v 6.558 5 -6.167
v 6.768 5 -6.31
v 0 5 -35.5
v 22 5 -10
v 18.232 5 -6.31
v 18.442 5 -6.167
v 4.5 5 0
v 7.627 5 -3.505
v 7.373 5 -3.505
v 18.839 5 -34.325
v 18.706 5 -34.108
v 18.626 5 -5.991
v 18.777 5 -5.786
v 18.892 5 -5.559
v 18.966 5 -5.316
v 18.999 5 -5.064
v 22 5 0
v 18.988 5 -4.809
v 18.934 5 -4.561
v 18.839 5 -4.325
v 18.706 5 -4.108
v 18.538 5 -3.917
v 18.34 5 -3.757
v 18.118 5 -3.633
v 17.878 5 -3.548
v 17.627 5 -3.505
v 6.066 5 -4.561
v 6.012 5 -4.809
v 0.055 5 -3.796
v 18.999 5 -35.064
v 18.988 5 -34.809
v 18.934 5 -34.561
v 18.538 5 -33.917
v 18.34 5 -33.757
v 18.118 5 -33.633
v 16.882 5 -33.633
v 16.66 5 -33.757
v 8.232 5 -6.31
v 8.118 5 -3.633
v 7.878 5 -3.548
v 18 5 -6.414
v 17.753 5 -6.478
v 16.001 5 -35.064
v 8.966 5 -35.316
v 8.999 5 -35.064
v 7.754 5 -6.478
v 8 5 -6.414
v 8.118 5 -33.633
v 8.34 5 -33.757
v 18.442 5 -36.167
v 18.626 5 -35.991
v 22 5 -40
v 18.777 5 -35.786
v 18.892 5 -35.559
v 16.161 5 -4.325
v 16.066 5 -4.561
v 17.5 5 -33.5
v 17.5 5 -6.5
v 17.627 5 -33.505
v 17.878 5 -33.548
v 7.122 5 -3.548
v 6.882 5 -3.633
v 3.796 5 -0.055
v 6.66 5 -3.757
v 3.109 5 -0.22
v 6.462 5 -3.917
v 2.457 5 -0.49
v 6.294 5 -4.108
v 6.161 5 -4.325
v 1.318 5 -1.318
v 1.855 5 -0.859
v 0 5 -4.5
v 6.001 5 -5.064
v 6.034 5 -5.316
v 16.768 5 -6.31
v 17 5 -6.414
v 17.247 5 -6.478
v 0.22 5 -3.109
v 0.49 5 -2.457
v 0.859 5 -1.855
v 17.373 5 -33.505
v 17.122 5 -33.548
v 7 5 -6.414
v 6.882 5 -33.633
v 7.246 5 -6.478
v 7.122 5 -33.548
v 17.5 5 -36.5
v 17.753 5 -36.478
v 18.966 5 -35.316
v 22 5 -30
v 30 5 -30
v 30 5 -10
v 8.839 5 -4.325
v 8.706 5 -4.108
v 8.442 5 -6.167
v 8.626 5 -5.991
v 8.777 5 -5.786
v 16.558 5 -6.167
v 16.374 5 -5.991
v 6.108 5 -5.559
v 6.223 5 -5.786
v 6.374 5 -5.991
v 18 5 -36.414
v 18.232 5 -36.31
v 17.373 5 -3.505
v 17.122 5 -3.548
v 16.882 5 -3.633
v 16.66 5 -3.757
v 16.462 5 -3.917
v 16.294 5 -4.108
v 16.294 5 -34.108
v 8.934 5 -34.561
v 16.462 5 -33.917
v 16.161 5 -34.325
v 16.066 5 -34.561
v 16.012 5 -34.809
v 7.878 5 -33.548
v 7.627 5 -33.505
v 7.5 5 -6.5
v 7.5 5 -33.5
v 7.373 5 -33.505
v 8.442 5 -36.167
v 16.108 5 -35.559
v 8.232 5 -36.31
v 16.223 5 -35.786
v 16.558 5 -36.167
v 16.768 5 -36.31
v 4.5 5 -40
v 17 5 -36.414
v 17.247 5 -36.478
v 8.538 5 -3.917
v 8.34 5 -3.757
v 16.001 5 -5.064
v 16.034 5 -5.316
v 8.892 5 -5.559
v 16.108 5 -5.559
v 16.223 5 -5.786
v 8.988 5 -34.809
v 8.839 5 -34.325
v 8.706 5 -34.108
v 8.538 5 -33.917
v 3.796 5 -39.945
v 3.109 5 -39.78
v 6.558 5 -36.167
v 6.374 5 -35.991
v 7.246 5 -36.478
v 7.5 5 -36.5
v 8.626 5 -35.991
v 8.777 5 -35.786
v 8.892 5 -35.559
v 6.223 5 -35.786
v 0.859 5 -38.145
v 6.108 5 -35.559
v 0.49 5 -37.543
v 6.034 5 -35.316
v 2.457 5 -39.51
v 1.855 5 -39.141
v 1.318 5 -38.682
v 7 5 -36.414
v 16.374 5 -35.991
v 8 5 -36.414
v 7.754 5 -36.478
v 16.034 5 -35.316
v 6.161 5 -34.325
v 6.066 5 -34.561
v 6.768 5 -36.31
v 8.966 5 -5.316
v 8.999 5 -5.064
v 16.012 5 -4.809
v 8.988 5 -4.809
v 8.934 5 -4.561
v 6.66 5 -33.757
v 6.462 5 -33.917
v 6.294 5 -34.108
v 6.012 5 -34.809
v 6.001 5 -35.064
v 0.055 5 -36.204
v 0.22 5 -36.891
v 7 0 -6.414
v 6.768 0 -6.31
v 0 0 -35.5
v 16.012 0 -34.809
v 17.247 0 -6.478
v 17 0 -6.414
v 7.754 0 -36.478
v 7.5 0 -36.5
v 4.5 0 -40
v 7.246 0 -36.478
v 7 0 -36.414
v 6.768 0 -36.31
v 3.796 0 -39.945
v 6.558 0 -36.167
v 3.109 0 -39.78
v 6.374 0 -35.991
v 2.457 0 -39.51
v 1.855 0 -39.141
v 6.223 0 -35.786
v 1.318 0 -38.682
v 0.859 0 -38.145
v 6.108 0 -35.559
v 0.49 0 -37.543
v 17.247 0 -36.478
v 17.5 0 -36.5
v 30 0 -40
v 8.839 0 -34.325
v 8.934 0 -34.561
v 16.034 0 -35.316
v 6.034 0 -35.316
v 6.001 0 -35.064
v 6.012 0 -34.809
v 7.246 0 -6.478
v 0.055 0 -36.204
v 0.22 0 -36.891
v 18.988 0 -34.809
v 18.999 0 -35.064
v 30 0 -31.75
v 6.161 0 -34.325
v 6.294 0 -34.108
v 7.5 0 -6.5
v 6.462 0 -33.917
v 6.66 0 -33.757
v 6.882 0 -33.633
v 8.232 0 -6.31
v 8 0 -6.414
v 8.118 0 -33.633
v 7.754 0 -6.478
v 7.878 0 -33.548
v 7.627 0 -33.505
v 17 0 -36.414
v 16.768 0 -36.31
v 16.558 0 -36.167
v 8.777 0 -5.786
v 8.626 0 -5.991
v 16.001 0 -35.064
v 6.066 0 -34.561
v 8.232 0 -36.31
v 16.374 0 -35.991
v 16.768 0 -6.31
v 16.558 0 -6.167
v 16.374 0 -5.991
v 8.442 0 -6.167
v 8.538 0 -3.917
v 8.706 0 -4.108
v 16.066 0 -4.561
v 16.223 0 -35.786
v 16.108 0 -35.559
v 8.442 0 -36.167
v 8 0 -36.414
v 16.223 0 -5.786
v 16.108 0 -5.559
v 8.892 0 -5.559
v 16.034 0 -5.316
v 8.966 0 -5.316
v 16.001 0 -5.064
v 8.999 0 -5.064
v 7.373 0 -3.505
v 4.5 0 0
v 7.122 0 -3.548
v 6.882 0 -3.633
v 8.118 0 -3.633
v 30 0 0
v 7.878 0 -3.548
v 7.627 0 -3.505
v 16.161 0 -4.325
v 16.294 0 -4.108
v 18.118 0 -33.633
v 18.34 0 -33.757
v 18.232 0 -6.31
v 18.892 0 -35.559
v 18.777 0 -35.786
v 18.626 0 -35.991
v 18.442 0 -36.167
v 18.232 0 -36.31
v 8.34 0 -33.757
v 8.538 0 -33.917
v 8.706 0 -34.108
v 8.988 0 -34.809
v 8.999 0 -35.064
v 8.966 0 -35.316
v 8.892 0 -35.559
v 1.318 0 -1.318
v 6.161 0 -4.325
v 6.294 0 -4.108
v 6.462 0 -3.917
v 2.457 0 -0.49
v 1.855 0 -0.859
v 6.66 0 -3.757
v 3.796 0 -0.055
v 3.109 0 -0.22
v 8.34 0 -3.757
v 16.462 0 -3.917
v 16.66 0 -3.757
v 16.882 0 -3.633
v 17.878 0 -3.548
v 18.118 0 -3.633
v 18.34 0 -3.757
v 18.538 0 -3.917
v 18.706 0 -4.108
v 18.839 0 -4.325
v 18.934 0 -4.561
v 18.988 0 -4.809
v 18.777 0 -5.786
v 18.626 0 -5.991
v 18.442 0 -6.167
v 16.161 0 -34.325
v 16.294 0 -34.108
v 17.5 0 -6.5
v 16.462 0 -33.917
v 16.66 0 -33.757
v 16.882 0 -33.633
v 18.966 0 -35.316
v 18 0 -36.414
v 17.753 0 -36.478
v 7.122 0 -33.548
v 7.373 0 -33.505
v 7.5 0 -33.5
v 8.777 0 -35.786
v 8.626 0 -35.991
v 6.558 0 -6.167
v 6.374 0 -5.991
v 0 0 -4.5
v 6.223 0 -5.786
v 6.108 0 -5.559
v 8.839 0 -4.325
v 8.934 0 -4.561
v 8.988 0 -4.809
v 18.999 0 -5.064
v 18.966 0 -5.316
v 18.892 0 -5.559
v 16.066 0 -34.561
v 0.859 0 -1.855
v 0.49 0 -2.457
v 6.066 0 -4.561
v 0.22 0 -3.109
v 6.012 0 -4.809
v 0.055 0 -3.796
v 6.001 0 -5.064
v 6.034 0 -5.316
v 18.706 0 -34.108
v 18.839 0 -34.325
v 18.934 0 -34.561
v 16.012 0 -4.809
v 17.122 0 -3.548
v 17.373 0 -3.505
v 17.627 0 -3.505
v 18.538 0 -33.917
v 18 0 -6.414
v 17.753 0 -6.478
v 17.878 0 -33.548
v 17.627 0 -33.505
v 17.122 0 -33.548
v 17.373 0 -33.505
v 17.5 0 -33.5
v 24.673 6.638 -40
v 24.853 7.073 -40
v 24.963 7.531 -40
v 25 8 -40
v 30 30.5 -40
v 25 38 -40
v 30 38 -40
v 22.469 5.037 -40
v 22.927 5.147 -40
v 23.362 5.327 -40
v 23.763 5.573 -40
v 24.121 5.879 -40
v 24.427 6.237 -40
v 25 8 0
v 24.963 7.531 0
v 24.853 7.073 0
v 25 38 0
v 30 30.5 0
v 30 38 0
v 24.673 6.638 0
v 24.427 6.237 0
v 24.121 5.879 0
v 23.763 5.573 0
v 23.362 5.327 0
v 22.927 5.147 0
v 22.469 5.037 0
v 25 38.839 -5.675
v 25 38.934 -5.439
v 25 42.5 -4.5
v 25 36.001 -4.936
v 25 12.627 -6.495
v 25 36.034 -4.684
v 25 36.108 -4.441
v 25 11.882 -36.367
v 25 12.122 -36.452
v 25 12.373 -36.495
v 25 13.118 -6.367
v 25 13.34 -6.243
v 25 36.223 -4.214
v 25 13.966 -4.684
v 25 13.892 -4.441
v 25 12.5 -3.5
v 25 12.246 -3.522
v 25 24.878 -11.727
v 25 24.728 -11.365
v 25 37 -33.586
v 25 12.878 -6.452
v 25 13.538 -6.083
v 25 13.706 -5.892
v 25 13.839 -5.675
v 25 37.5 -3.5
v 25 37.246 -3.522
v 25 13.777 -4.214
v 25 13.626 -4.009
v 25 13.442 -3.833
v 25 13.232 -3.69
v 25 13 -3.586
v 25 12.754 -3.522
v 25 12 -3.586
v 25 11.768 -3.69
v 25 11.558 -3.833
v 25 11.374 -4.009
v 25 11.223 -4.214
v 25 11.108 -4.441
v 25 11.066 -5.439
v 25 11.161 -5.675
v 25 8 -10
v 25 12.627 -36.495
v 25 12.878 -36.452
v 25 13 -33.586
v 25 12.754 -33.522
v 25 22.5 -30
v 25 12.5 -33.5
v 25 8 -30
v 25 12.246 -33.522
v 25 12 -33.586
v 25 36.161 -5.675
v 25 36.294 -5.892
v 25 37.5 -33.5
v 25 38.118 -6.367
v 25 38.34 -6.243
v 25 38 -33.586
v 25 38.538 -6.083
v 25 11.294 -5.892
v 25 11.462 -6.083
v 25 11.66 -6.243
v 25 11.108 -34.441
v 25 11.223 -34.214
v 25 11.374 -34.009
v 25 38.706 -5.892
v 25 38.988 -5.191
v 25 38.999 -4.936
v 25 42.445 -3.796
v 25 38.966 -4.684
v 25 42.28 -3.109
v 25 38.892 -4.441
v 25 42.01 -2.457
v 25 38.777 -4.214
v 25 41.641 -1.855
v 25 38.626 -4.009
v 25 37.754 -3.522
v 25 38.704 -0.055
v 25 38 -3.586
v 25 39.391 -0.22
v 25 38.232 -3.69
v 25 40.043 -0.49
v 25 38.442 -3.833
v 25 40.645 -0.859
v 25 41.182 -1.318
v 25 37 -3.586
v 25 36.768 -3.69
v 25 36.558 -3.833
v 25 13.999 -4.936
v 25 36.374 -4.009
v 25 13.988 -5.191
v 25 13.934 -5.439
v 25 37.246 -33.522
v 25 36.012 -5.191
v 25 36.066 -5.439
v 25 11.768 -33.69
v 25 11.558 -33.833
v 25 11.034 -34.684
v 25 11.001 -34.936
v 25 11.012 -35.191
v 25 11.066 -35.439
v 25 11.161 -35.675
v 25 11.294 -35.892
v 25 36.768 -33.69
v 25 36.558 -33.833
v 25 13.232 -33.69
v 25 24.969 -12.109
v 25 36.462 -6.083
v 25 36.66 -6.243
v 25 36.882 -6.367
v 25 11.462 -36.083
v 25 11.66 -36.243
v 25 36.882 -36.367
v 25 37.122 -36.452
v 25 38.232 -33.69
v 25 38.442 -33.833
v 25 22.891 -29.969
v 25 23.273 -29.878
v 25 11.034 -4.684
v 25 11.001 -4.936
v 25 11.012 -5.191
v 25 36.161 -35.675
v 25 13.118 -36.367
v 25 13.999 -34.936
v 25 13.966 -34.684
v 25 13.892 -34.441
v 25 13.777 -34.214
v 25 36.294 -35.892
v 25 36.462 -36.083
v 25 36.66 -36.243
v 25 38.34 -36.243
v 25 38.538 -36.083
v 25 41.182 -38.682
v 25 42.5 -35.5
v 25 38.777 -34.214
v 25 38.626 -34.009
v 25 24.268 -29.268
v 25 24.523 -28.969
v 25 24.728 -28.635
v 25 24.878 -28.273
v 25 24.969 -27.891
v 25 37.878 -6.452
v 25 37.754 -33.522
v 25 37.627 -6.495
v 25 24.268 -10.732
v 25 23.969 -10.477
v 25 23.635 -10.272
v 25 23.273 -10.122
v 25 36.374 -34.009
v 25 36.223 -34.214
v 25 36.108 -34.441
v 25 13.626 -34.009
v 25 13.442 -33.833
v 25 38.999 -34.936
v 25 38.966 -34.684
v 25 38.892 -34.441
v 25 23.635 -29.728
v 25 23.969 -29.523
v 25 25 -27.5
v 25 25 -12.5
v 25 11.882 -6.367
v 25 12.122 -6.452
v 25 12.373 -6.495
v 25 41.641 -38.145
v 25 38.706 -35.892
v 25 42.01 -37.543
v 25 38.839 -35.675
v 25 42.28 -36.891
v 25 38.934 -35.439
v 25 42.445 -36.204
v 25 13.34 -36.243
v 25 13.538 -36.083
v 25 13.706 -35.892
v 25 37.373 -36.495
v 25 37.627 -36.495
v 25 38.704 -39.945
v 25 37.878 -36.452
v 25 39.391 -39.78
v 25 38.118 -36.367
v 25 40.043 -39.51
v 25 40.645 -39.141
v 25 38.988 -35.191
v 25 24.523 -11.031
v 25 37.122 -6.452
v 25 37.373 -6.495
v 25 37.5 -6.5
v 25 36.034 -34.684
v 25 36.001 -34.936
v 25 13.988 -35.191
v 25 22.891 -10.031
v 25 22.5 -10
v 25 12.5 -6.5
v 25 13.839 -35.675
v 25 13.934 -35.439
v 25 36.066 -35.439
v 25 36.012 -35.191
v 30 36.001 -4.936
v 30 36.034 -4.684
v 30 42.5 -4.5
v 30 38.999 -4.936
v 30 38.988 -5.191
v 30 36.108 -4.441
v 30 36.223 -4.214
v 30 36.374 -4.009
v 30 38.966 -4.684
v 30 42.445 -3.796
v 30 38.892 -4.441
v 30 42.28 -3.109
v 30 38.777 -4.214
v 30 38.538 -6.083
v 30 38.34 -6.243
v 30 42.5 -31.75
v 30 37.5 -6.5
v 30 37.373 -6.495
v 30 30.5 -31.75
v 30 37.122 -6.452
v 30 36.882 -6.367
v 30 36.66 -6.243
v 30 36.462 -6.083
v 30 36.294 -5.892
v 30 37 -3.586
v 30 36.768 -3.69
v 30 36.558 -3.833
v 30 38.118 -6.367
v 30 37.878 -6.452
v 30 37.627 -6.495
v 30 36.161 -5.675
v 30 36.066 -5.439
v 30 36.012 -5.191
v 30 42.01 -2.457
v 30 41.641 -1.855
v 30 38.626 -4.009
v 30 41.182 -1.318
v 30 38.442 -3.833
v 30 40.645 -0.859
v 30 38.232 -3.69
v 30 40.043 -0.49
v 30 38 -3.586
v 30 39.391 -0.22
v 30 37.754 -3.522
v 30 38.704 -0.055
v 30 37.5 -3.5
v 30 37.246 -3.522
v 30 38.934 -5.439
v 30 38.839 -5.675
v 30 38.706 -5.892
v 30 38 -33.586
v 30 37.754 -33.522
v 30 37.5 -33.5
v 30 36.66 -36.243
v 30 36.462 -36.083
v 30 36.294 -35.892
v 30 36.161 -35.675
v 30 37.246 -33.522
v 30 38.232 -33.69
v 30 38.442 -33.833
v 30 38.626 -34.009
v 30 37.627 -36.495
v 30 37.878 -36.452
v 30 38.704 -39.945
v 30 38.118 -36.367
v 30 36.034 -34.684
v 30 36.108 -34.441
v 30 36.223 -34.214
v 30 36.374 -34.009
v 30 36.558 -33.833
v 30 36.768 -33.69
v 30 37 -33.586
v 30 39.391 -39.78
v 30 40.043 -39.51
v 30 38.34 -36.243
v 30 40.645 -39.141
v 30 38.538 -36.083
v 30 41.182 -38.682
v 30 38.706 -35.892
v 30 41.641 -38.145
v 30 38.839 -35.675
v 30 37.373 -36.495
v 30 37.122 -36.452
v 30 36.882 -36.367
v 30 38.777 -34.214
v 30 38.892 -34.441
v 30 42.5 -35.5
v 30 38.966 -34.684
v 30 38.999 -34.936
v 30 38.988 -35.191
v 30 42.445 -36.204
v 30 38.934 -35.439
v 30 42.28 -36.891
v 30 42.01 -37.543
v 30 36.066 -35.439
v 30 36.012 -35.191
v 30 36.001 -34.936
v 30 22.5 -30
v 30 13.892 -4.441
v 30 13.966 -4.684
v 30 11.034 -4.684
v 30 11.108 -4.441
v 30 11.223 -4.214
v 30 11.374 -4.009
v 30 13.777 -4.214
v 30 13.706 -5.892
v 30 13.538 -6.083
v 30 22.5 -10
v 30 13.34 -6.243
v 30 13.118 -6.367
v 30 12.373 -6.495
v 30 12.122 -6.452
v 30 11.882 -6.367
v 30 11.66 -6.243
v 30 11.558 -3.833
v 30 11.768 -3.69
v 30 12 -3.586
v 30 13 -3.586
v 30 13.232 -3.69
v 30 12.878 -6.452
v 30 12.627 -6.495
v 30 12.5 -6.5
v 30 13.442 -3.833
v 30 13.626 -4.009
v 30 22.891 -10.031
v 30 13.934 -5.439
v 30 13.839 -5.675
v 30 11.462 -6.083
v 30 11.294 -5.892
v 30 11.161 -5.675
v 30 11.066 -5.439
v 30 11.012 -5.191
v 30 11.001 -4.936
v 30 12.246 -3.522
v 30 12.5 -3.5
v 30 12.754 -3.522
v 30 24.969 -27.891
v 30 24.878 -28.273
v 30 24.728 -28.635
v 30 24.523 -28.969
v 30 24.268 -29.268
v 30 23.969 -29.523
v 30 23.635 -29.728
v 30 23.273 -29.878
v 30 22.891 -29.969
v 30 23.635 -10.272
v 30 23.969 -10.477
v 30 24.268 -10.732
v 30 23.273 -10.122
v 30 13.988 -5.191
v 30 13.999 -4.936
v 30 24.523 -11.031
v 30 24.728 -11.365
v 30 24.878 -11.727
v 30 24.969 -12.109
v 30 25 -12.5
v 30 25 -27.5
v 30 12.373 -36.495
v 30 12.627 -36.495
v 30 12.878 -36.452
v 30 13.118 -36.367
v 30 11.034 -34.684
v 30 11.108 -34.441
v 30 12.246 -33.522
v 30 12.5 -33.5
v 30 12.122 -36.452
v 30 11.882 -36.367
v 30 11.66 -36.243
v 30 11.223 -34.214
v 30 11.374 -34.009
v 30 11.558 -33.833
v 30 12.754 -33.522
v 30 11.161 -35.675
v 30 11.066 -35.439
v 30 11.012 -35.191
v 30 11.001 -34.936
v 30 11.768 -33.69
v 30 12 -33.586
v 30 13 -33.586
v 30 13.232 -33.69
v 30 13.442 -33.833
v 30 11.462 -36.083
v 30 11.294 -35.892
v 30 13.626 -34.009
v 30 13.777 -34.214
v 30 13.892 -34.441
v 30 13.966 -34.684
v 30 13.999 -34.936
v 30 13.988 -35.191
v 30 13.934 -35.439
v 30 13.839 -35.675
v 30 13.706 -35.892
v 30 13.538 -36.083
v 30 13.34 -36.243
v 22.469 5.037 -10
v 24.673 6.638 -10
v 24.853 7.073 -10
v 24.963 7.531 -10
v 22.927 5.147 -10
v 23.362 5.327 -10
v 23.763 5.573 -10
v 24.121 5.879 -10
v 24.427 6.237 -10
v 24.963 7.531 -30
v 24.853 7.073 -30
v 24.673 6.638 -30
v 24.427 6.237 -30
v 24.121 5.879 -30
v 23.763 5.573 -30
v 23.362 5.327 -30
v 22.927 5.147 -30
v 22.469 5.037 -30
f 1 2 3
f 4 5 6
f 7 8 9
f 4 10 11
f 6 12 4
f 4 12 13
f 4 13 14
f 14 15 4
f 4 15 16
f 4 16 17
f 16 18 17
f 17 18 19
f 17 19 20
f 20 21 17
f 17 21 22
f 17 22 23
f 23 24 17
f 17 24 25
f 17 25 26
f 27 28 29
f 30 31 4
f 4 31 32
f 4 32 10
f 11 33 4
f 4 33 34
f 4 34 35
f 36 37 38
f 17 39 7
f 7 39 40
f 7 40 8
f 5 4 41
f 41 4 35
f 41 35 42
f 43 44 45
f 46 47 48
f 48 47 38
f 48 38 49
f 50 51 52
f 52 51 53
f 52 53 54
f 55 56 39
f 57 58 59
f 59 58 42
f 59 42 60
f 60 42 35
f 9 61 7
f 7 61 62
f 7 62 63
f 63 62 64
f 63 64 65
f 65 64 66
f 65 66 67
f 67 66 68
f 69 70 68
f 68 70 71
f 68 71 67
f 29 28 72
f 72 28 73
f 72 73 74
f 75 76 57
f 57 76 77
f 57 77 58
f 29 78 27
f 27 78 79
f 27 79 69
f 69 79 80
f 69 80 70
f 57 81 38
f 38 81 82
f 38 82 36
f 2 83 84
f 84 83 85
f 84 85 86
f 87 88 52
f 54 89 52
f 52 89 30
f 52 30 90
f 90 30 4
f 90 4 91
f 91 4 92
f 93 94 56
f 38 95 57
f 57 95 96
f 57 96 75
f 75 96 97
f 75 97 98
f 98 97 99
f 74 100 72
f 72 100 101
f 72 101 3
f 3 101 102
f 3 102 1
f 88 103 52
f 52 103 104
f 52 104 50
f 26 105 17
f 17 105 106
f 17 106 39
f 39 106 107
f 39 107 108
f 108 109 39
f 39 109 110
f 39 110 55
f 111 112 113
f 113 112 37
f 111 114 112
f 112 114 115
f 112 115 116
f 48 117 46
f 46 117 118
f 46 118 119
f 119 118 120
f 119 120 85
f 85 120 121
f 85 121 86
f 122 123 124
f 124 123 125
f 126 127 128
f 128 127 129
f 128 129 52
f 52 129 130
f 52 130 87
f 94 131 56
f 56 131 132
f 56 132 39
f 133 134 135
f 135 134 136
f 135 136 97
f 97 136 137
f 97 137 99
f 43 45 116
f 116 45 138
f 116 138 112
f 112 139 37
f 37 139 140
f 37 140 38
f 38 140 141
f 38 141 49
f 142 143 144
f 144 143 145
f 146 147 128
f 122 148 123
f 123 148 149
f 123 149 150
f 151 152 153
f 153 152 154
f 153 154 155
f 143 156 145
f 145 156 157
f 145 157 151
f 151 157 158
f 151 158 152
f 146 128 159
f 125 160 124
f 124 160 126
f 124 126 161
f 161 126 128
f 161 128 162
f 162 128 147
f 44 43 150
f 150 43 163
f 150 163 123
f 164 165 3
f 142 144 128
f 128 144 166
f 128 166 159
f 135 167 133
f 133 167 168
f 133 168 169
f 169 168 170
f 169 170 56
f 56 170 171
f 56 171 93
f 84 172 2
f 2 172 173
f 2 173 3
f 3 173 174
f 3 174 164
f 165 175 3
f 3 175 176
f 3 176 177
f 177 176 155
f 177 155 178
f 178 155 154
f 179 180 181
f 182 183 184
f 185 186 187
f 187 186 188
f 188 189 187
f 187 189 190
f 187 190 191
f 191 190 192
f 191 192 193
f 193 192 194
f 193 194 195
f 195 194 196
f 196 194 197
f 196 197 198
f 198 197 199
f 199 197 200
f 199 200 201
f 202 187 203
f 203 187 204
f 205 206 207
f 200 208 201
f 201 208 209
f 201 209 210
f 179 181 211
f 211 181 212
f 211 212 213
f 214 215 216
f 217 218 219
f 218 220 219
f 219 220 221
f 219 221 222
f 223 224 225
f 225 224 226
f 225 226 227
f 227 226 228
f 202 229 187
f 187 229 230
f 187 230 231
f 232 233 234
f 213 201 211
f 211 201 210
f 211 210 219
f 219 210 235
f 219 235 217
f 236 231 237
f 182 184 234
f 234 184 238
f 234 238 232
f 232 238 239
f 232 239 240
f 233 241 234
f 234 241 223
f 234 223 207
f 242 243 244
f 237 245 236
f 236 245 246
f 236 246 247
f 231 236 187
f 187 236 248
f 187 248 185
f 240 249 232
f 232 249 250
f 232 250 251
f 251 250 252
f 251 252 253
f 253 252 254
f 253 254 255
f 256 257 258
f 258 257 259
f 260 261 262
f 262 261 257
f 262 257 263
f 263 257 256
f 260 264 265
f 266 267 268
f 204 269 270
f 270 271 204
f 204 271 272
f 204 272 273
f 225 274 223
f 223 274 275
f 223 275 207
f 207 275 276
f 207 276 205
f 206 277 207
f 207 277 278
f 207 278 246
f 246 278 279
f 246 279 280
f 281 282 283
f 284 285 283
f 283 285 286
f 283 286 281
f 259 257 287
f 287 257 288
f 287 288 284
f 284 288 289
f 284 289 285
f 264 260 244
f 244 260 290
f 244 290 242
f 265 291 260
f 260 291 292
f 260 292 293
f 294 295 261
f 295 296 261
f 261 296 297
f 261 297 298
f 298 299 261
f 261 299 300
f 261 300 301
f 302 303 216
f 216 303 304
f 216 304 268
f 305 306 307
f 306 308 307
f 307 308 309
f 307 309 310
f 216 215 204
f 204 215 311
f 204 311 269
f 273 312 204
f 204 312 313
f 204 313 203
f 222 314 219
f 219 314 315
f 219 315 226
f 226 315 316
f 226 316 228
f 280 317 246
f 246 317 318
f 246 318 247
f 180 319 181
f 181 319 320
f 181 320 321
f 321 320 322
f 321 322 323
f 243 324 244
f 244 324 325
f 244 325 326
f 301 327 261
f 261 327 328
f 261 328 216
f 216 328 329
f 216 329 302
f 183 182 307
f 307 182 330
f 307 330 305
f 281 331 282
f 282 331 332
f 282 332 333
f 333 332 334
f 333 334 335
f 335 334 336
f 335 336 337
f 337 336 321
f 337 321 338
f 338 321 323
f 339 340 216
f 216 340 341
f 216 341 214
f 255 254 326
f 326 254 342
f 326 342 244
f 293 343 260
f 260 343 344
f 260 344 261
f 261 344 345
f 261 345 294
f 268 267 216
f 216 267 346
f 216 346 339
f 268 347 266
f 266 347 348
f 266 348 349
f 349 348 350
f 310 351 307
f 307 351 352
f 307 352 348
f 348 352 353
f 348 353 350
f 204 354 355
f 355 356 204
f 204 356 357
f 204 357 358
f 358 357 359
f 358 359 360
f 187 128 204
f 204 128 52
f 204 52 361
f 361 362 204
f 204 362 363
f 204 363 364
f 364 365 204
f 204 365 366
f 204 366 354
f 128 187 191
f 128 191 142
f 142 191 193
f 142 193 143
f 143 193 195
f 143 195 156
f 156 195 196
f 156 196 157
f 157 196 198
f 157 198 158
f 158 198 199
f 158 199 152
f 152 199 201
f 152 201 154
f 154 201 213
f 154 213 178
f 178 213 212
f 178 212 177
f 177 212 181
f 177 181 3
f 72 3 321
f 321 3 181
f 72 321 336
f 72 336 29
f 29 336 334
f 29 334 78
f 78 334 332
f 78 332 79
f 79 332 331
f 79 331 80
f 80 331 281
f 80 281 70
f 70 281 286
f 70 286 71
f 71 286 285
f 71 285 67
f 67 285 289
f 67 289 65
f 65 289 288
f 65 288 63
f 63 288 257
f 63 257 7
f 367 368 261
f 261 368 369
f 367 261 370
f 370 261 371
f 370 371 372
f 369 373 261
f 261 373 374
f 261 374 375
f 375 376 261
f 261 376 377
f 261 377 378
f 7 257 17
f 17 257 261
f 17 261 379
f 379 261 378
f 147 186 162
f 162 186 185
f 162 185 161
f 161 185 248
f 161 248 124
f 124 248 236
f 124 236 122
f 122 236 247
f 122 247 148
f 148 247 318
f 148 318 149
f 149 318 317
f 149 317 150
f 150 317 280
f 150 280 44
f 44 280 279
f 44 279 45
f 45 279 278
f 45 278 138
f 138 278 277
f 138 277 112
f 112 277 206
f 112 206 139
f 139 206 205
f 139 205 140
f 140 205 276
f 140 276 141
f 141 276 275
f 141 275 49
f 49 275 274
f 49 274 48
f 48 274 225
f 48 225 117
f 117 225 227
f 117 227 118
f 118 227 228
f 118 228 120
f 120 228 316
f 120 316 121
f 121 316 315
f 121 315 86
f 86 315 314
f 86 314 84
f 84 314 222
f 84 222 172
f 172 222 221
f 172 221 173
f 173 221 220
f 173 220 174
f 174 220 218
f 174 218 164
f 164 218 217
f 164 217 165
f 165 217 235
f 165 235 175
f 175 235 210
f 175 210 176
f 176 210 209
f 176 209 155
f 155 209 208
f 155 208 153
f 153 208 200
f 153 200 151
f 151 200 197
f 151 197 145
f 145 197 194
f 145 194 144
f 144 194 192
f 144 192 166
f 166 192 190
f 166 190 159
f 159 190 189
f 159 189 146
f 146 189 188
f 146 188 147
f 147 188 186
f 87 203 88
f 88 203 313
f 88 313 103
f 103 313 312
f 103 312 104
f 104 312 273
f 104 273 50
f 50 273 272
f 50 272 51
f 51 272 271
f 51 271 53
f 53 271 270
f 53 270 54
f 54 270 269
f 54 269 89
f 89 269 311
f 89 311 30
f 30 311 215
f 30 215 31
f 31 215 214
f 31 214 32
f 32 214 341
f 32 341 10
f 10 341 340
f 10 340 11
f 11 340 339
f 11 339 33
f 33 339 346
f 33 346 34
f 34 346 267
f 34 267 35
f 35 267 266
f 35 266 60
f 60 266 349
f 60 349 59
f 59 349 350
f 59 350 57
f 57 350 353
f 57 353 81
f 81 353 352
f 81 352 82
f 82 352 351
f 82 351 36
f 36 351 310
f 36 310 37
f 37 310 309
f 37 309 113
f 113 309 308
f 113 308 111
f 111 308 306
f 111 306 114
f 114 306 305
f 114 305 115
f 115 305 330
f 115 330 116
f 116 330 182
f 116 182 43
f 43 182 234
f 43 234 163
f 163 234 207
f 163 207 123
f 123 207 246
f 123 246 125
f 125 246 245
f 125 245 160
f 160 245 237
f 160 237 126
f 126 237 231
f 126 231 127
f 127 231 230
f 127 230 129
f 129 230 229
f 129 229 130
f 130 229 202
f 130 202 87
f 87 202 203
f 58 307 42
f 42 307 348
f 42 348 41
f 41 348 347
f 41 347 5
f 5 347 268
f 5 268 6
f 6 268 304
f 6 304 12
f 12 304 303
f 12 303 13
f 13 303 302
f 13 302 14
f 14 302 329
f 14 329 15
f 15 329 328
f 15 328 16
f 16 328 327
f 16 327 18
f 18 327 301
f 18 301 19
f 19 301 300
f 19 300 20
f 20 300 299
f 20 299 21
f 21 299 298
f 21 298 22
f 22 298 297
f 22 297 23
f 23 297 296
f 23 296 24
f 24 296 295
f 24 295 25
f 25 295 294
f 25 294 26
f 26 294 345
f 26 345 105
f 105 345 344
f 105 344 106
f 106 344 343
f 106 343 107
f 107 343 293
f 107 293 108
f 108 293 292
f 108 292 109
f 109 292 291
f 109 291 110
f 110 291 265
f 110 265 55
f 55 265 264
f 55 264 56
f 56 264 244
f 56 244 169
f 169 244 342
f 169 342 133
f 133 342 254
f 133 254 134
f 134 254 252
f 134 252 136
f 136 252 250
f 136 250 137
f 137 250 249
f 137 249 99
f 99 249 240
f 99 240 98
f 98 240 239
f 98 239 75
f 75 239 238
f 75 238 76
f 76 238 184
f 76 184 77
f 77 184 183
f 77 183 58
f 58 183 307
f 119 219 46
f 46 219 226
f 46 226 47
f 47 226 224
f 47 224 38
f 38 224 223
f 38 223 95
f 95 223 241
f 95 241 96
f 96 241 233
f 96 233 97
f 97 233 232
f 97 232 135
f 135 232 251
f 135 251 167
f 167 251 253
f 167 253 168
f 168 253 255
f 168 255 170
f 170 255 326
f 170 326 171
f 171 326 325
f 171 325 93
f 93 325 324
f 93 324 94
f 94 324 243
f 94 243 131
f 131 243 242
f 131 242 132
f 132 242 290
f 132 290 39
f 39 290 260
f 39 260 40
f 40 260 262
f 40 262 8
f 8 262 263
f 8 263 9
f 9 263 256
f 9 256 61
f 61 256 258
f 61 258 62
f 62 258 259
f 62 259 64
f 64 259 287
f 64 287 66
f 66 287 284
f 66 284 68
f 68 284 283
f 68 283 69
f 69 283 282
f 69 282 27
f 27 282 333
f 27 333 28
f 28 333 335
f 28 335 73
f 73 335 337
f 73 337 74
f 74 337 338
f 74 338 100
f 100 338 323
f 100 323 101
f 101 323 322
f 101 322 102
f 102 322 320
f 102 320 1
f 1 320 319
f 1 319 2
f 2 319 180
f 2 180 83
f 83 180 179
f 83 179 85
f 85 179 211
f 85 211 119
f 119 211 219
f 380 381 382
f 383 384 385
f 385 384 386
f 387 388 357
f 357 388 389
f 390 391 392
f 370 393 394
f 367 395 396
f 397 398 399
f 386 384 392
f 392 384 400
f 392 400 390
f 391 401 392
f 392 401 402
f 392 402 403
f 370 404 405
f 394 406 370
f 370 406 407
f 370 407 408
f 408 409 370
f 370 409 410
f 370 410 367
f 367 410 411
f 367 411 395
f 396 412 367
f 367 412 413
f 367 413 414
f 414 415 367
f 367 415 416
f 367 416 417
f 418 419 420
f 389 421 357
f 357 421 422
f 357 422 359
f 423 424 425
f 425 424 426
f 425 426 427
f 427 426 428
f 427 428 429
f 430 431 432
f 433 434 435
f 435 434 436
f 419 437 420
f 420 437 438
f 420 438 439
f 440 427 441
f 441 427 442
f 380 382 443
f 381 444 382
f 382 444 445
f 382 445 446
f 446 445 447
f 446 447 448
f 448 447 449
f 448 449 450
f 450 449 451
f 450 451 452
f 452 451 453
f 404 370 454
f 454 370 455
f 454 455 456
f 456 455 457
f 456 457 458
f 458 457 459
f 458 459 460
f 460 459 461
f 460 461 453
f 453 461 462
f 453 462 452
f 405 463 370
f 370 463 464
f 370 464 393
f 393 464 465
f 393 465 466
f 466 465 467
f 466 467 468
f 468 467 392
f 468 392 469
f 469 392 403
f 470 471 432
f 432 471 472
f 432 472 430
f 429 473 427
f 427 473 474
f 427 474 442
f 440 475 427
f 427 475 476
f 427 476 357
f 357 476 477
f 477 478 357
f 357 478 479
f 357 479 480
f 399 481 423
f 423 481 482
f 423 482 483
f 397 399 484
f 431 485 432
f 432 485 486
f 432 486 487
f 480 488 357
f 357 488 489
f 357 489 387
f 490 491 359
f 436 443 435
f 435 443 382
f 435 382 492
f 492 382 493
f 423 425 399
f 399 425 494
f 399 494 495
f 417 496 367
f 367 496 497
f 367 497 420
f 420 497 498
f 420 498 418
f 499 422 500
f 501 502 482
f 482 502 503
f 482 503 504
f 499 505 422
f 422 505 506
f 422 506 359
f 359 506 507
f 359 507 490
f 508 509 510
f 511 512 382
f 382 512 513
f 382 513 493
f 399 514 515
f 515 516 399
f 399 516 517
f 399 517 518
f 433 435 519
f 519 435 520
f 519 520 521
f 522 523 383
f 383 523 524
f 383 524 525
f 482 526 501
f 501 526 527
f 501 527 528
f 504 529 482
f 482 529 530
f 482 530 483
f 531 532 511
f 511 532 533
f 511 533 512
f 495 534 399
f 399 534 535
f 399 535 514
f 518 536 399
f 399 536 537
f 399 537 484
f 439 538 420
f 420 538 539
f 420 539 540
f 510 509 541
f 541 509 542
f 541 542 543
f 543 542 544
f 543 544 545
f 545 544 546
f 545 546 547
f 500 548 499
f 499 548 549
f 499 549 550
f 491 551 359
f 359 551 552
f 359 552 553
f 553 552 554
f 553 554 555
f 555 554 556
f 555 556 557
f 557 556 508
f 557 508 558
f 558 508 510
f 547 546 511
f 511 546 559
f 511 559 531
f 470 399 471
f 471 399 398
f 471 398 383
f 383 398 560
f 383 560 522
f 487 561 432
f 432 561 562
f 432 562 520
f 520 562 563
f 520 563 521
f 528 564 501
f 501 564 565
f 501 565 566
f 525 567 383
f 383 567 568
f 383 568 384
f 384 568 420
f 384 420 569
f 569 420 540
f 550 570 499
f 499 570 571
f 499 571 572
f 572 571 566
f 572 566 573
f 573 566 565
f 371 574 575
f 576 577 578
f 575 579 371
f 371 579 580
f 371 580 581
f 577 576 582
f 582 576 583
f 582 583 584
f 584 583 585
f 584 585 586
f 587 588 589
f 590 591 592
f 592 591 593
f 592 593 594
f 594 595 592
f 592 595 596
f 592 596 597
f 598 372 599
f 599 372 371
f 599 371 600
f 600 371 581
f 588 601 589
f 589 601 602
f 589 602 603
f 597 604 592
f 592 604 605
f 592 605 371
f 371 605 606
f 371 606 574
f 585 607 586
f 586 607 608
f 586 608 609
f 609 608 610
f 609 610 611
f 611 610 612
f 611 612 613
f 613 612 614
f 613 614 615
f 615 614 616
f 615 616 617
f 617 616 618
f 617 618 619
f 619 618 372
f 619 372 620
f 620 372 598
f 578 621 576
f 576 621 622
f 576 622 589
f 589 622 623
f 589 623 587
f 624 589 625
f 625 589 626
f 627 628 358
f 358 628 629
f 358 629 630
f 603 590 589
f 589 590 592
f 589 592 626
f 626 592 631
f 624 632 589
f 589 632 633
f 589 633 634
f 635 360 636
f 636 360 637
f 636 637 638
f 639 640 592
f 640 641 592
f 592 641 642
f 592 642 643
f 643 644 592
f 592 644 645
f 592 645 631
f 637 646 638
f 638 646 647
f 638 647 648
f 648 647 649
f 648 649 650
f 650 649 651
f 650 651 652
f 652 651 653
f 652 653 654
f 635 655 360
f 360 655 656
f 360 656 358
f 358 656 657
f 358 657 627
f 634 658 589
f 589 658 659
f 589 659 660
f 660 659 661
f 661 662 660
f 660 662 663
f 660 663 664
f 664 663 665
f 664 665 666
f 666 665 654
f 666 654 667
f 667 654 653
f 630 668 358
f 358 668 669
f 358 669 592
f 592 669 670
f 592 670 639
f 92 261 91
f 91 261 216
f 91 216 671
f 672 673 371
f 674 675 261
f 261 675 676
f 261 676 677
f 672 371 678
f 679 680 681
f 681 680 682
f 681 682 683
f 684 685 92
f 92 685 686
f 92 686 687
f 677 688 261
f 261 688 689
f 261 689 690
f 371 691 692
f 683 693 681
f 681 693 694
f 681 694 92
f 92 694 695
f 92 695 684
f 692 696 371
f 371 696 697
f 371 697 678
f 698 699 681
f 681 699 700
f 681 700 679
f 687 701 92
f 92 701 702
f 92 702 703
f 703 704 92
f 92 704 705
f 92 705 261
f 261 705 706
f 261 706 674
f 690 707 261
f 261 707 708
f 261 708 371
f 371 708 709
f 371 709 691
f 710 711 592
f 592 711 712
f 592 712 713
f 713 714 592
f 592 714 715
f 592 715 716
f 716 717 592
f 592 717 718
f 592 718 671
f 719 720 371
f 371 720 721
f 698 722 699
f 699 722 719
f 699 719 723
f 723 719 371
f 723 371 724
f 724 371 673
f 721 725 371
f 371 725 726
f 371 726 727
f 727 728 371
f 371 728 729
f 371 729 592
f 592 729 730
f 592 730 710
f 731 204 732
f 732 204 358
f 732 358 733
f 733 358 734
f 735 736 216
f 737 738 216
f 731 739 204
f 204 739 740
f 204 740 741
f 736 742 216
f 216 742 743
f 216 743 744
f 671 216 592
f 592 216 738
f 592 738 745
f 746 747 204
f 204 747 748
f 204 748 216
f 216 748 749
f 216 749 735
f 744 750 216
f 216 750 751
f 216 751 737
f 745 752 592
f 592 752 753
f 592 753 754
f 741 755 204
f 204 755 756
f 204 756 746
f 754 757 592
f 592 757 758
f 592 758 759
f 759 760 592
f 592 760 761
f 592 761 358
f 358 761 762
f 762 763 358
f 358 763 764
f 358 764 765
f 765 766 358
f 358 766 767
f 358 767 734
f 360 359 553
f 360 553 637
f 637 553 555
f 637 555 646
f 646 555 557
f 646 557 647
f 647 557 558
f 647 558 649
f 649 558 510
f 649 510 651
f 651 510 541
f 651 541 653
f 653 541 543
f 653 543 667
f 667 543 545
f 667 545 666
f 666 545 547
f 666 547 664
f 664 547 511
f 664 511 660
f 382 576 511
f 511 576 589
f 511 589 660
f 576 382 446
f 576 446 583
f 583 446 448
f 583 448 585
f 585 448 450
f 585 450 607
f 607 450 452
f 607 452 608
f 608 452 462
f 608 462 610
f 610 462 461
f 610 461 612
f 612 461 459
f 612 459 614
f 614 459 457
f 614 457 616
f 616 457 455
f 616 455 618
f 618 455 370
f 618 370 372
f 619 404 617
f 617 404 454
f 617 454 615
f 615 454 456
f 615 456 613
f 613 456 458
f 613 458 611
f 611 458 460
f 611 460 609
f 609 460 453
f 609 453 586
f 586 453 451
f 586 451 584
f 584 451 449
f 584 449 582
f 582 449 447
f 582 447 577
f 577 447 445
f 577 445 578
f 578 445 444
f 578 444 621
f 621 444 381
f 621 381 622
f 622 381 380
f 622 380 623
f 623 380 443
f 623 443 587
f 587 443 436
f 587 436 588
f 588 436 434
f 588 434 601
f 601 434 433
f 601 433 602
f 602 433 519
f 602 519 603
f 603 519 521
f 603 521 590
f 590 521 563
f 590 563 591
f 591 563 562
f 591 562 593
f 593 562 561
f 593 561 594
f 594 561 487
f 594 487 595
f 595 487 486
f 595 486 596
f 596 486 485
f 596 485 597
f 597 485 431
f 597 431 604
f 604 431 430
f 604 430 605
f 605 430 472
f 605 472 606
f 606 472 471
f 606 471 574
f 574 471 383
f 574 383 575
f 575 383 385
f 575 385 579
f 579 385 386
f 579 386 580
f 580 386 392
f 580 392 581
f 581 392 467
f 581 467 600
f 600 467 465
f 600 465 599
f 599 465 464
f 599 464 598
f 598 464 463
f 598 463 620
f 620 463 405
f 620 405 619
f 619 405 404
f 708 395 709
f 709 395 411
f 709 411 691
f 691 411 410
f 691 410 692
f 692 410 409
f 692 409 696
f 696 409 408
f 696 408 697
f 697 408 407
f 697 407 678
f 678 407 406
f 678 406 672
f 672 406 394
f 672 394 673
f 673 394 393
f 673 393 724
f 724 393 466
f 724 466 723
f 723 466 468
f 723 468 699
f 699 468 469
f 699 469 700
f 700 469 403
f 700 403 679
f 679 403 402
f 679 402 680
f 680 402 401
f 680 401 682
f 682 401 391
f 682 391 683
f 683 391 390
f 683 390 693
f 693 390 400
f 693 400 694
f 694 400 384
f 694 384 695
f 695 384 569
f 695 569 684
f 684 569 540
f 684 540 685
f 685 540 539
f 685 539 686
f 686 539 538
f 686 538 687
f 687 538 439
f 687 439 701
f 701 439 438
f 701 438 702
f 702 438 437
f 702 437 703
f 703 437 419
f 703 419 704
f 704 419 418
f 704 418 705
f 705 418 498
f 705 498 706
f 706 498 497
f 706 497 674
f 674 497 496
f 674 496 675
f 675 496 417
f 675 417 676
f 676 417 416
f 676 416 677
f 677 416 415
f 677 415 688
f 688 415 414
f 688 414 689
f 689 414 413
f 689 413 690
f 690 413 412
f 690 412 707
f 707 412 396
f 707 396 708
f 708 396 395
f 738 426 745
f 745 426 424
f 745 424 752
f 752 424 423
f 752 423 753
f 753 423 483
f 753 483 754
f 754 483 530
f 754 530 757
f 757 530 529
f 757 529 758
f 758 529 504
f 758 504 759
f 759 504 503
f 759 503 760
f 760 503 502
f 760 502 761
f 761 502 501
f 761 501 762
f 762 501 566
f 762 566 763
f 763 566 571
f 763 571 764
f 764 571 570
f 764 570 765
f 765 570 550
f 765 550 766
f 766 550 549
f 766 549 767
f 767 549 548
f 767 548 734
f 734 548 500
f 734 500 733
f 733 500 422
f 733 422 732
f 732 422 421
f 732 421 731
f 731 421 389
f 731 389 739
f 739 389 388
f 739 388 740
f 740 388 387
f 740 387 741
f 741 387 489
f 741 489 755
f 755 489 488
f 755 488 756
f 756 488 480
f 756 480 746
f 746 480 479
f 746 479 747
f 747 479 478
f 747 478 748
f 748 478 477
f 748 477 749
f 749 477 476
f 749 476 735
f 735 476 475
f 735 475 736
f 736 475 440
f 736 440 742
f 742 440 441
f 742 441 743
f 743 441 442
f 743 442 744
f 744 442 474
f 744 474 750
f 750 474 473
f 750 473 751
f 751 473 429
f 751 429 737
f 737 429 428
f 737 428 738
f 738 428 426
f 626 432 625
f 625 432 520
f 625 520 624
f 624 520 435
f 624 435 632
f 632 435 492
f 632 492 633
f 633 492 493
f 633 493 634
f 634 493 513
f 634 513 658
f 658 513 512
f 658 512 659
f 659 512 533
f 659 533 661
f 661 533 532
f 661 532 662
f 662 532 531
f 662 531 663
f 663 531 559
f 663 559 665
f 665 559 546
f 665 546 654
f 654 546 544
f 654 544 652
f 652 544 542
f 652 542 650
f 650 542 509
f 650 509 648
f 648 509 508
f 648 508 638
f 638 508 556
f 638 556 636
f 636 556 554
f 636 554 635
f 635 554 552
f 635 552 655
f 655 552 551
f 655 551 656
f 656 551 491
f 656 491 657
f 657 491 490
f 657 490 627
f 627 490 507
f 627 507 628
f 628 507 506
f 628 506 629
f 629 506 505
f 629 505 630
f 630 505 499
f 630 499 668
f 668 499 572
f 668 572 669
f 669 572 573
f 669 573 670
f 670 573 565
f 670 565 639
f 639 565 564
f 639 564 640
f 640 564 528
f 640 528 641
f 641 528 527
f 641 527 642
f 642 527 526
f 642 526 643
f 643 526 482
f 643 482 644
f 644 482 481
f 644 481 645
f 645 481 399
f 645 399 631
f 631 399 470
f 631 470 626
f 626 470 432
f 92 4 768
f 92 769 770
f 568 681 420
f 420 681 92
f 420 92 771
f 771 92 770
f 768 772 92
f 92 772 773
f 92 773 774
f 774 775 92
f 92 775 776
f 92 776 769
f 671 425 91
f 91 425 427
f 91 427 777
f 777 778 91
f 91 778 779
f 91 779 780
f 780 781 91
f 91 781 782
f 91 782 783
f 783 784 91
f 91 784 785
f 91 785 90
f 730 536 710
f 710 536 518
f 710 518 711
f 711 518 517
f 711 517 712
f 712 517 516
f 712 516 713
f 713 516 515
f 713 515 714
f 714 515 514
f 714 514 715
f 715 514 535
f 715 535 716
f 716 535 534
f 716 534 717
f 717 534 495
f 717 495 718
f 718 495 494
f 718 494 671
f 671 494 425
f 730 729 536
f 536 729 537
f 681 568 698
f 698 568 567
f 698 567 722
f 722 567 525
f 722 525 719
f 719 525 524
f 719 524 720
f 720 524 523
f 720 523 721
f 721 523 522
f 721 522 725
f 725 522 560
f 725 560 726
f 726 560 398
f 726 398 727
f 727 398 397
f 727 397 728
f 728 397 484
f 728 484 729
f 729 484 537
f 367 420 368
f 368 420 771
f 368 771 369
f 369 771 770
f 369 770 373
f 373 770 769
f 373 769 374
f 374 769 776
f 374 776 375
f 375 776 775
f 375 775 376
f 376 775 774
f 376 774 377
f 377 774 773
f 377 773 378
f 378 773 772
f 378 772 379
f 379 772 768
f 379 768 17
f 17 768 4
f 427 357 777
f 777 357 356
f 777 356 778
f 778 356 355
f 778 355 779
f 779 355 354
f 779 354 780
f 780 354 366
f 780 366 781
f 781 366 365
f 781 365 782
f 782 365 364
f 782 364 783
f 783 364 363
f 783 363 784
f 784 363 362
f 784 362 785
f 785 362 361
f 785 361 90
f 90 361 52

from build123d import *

# Parameters (mm, degrees)
SKETCH1_R           = 1.5
BOSS_EXTRUDE1_DEPTH = 5
SKETCH2_R           = 1.5
BOSS_EXTRUDE3_DEPTH = 5
FILLET4_R           = 3


with BuildPart() as part:
    # Sketch1 → Boss-Extrude1 (new body)
    with BuildSketch(Plane(origin=(0, 0, 0), x_dir=(1, 0, 0), z_dir=(0, 1, 0))):
        with BuildLine():
            Line((4.5, 0), (25, 0))
            Line((25, 0), (25, 40))
            Line((25, 40), (4.5, 40))
            ThreePointArc((4.5, 40), (1.318019485, 38.681980515), (0, 35.5))
            Line((0, 35.5), (0, 4.5))
            ThreePointArc((0, 4.5), (1.318019485, 1.318019485), (4.5, 0))
        make_face()
        with Locations(Location((7.5, 35, 0), (0, 0, 270))):
            Circle(SKETCH1_R, mode=Mode.SUBTRACT)
        with Locations(Location((17.5, 35, 0), (0, 0, 270))):
            Circle(SKETCH1_R, mode=Mode.SUBTRACT)
        with Locations(Location((17.5, 5, 0), (0, 0, 90))):
            Circle(SKETCH1_R, mode=Mode.SUBTRACT)
        with Locations(Location((7.5, 5, 0), (0, 0, 90))):
            Circle(SKETCH1_R, mode=Mode.SUBTRACT)
    extrude(amount=BOSS_EXTRUDE1_DEPTH)

    # Sketch2 → Boss-Extrude3 (add)
    with BuildSketch(Plane(origin=(25, 0, 0), x_dir=(0, 0, -1), z_dir=(1, 0, 0))):
        with BuildLine():
            Line((0, 0), (40, 0))
            Line((40, 0), (40, 38))
            ThreePointArc((40, 38), (38.681980515, 41.181980515), (35.5, 42.5))
            Line((35.5, 42.5), (4.5, 42.5))
            ThreePointArc((4.5, 42.5), (1.318019485, 41.181980515), (0, 38))
            Line((0, 38), (0, 0))
        make_face()
        with Locations((5, 37.5)):
            Circle(SKETCH2_R, mode=Mode.SUBTRACT)
        with Locations((5, 12.5)):
            Circle(SKETCH2_R, mode=Mode.SUBTRACT)
        with Locations(Location((35, 12.5, 0), (0, 0, 180))):
            Circle(SKETCH2_R, mode=Mode.SUBTRACT)
        with Locations(Location((35, 37.5, 0), (0, 0, 180))):
            Circle(SKETCH2_R, mode=Mode.SUBTRACT)
        with BuildLine():
            Line((27.5, 25), (12.5, 25))
            ThreePointArc((12.5, 25), (10.732233047, 24.267766953), (10, 22.5))
            Line((10, 22.5), (10, 5))
            Line((10, 5), (30, 5))
            Line((30, 5), (30, 22.5))
            ThreePointArc((30, 22.5), (29.267766953, 24.267766953), (27.5, 25))
        make_face(mode=Mode.SUBTRACT)
    extrude(amount=BOSS_EXTRUDE3_DEPTH)

    # Fillet4
    fillet4_edges = [part.edges().sort_by_distance(p)[0] for p in [
        (25, 5, -35),
        (25, 5, -5),
    ]]
    fillet(fillet4_edges, radius=FILLET4_R)


solid = part.part
